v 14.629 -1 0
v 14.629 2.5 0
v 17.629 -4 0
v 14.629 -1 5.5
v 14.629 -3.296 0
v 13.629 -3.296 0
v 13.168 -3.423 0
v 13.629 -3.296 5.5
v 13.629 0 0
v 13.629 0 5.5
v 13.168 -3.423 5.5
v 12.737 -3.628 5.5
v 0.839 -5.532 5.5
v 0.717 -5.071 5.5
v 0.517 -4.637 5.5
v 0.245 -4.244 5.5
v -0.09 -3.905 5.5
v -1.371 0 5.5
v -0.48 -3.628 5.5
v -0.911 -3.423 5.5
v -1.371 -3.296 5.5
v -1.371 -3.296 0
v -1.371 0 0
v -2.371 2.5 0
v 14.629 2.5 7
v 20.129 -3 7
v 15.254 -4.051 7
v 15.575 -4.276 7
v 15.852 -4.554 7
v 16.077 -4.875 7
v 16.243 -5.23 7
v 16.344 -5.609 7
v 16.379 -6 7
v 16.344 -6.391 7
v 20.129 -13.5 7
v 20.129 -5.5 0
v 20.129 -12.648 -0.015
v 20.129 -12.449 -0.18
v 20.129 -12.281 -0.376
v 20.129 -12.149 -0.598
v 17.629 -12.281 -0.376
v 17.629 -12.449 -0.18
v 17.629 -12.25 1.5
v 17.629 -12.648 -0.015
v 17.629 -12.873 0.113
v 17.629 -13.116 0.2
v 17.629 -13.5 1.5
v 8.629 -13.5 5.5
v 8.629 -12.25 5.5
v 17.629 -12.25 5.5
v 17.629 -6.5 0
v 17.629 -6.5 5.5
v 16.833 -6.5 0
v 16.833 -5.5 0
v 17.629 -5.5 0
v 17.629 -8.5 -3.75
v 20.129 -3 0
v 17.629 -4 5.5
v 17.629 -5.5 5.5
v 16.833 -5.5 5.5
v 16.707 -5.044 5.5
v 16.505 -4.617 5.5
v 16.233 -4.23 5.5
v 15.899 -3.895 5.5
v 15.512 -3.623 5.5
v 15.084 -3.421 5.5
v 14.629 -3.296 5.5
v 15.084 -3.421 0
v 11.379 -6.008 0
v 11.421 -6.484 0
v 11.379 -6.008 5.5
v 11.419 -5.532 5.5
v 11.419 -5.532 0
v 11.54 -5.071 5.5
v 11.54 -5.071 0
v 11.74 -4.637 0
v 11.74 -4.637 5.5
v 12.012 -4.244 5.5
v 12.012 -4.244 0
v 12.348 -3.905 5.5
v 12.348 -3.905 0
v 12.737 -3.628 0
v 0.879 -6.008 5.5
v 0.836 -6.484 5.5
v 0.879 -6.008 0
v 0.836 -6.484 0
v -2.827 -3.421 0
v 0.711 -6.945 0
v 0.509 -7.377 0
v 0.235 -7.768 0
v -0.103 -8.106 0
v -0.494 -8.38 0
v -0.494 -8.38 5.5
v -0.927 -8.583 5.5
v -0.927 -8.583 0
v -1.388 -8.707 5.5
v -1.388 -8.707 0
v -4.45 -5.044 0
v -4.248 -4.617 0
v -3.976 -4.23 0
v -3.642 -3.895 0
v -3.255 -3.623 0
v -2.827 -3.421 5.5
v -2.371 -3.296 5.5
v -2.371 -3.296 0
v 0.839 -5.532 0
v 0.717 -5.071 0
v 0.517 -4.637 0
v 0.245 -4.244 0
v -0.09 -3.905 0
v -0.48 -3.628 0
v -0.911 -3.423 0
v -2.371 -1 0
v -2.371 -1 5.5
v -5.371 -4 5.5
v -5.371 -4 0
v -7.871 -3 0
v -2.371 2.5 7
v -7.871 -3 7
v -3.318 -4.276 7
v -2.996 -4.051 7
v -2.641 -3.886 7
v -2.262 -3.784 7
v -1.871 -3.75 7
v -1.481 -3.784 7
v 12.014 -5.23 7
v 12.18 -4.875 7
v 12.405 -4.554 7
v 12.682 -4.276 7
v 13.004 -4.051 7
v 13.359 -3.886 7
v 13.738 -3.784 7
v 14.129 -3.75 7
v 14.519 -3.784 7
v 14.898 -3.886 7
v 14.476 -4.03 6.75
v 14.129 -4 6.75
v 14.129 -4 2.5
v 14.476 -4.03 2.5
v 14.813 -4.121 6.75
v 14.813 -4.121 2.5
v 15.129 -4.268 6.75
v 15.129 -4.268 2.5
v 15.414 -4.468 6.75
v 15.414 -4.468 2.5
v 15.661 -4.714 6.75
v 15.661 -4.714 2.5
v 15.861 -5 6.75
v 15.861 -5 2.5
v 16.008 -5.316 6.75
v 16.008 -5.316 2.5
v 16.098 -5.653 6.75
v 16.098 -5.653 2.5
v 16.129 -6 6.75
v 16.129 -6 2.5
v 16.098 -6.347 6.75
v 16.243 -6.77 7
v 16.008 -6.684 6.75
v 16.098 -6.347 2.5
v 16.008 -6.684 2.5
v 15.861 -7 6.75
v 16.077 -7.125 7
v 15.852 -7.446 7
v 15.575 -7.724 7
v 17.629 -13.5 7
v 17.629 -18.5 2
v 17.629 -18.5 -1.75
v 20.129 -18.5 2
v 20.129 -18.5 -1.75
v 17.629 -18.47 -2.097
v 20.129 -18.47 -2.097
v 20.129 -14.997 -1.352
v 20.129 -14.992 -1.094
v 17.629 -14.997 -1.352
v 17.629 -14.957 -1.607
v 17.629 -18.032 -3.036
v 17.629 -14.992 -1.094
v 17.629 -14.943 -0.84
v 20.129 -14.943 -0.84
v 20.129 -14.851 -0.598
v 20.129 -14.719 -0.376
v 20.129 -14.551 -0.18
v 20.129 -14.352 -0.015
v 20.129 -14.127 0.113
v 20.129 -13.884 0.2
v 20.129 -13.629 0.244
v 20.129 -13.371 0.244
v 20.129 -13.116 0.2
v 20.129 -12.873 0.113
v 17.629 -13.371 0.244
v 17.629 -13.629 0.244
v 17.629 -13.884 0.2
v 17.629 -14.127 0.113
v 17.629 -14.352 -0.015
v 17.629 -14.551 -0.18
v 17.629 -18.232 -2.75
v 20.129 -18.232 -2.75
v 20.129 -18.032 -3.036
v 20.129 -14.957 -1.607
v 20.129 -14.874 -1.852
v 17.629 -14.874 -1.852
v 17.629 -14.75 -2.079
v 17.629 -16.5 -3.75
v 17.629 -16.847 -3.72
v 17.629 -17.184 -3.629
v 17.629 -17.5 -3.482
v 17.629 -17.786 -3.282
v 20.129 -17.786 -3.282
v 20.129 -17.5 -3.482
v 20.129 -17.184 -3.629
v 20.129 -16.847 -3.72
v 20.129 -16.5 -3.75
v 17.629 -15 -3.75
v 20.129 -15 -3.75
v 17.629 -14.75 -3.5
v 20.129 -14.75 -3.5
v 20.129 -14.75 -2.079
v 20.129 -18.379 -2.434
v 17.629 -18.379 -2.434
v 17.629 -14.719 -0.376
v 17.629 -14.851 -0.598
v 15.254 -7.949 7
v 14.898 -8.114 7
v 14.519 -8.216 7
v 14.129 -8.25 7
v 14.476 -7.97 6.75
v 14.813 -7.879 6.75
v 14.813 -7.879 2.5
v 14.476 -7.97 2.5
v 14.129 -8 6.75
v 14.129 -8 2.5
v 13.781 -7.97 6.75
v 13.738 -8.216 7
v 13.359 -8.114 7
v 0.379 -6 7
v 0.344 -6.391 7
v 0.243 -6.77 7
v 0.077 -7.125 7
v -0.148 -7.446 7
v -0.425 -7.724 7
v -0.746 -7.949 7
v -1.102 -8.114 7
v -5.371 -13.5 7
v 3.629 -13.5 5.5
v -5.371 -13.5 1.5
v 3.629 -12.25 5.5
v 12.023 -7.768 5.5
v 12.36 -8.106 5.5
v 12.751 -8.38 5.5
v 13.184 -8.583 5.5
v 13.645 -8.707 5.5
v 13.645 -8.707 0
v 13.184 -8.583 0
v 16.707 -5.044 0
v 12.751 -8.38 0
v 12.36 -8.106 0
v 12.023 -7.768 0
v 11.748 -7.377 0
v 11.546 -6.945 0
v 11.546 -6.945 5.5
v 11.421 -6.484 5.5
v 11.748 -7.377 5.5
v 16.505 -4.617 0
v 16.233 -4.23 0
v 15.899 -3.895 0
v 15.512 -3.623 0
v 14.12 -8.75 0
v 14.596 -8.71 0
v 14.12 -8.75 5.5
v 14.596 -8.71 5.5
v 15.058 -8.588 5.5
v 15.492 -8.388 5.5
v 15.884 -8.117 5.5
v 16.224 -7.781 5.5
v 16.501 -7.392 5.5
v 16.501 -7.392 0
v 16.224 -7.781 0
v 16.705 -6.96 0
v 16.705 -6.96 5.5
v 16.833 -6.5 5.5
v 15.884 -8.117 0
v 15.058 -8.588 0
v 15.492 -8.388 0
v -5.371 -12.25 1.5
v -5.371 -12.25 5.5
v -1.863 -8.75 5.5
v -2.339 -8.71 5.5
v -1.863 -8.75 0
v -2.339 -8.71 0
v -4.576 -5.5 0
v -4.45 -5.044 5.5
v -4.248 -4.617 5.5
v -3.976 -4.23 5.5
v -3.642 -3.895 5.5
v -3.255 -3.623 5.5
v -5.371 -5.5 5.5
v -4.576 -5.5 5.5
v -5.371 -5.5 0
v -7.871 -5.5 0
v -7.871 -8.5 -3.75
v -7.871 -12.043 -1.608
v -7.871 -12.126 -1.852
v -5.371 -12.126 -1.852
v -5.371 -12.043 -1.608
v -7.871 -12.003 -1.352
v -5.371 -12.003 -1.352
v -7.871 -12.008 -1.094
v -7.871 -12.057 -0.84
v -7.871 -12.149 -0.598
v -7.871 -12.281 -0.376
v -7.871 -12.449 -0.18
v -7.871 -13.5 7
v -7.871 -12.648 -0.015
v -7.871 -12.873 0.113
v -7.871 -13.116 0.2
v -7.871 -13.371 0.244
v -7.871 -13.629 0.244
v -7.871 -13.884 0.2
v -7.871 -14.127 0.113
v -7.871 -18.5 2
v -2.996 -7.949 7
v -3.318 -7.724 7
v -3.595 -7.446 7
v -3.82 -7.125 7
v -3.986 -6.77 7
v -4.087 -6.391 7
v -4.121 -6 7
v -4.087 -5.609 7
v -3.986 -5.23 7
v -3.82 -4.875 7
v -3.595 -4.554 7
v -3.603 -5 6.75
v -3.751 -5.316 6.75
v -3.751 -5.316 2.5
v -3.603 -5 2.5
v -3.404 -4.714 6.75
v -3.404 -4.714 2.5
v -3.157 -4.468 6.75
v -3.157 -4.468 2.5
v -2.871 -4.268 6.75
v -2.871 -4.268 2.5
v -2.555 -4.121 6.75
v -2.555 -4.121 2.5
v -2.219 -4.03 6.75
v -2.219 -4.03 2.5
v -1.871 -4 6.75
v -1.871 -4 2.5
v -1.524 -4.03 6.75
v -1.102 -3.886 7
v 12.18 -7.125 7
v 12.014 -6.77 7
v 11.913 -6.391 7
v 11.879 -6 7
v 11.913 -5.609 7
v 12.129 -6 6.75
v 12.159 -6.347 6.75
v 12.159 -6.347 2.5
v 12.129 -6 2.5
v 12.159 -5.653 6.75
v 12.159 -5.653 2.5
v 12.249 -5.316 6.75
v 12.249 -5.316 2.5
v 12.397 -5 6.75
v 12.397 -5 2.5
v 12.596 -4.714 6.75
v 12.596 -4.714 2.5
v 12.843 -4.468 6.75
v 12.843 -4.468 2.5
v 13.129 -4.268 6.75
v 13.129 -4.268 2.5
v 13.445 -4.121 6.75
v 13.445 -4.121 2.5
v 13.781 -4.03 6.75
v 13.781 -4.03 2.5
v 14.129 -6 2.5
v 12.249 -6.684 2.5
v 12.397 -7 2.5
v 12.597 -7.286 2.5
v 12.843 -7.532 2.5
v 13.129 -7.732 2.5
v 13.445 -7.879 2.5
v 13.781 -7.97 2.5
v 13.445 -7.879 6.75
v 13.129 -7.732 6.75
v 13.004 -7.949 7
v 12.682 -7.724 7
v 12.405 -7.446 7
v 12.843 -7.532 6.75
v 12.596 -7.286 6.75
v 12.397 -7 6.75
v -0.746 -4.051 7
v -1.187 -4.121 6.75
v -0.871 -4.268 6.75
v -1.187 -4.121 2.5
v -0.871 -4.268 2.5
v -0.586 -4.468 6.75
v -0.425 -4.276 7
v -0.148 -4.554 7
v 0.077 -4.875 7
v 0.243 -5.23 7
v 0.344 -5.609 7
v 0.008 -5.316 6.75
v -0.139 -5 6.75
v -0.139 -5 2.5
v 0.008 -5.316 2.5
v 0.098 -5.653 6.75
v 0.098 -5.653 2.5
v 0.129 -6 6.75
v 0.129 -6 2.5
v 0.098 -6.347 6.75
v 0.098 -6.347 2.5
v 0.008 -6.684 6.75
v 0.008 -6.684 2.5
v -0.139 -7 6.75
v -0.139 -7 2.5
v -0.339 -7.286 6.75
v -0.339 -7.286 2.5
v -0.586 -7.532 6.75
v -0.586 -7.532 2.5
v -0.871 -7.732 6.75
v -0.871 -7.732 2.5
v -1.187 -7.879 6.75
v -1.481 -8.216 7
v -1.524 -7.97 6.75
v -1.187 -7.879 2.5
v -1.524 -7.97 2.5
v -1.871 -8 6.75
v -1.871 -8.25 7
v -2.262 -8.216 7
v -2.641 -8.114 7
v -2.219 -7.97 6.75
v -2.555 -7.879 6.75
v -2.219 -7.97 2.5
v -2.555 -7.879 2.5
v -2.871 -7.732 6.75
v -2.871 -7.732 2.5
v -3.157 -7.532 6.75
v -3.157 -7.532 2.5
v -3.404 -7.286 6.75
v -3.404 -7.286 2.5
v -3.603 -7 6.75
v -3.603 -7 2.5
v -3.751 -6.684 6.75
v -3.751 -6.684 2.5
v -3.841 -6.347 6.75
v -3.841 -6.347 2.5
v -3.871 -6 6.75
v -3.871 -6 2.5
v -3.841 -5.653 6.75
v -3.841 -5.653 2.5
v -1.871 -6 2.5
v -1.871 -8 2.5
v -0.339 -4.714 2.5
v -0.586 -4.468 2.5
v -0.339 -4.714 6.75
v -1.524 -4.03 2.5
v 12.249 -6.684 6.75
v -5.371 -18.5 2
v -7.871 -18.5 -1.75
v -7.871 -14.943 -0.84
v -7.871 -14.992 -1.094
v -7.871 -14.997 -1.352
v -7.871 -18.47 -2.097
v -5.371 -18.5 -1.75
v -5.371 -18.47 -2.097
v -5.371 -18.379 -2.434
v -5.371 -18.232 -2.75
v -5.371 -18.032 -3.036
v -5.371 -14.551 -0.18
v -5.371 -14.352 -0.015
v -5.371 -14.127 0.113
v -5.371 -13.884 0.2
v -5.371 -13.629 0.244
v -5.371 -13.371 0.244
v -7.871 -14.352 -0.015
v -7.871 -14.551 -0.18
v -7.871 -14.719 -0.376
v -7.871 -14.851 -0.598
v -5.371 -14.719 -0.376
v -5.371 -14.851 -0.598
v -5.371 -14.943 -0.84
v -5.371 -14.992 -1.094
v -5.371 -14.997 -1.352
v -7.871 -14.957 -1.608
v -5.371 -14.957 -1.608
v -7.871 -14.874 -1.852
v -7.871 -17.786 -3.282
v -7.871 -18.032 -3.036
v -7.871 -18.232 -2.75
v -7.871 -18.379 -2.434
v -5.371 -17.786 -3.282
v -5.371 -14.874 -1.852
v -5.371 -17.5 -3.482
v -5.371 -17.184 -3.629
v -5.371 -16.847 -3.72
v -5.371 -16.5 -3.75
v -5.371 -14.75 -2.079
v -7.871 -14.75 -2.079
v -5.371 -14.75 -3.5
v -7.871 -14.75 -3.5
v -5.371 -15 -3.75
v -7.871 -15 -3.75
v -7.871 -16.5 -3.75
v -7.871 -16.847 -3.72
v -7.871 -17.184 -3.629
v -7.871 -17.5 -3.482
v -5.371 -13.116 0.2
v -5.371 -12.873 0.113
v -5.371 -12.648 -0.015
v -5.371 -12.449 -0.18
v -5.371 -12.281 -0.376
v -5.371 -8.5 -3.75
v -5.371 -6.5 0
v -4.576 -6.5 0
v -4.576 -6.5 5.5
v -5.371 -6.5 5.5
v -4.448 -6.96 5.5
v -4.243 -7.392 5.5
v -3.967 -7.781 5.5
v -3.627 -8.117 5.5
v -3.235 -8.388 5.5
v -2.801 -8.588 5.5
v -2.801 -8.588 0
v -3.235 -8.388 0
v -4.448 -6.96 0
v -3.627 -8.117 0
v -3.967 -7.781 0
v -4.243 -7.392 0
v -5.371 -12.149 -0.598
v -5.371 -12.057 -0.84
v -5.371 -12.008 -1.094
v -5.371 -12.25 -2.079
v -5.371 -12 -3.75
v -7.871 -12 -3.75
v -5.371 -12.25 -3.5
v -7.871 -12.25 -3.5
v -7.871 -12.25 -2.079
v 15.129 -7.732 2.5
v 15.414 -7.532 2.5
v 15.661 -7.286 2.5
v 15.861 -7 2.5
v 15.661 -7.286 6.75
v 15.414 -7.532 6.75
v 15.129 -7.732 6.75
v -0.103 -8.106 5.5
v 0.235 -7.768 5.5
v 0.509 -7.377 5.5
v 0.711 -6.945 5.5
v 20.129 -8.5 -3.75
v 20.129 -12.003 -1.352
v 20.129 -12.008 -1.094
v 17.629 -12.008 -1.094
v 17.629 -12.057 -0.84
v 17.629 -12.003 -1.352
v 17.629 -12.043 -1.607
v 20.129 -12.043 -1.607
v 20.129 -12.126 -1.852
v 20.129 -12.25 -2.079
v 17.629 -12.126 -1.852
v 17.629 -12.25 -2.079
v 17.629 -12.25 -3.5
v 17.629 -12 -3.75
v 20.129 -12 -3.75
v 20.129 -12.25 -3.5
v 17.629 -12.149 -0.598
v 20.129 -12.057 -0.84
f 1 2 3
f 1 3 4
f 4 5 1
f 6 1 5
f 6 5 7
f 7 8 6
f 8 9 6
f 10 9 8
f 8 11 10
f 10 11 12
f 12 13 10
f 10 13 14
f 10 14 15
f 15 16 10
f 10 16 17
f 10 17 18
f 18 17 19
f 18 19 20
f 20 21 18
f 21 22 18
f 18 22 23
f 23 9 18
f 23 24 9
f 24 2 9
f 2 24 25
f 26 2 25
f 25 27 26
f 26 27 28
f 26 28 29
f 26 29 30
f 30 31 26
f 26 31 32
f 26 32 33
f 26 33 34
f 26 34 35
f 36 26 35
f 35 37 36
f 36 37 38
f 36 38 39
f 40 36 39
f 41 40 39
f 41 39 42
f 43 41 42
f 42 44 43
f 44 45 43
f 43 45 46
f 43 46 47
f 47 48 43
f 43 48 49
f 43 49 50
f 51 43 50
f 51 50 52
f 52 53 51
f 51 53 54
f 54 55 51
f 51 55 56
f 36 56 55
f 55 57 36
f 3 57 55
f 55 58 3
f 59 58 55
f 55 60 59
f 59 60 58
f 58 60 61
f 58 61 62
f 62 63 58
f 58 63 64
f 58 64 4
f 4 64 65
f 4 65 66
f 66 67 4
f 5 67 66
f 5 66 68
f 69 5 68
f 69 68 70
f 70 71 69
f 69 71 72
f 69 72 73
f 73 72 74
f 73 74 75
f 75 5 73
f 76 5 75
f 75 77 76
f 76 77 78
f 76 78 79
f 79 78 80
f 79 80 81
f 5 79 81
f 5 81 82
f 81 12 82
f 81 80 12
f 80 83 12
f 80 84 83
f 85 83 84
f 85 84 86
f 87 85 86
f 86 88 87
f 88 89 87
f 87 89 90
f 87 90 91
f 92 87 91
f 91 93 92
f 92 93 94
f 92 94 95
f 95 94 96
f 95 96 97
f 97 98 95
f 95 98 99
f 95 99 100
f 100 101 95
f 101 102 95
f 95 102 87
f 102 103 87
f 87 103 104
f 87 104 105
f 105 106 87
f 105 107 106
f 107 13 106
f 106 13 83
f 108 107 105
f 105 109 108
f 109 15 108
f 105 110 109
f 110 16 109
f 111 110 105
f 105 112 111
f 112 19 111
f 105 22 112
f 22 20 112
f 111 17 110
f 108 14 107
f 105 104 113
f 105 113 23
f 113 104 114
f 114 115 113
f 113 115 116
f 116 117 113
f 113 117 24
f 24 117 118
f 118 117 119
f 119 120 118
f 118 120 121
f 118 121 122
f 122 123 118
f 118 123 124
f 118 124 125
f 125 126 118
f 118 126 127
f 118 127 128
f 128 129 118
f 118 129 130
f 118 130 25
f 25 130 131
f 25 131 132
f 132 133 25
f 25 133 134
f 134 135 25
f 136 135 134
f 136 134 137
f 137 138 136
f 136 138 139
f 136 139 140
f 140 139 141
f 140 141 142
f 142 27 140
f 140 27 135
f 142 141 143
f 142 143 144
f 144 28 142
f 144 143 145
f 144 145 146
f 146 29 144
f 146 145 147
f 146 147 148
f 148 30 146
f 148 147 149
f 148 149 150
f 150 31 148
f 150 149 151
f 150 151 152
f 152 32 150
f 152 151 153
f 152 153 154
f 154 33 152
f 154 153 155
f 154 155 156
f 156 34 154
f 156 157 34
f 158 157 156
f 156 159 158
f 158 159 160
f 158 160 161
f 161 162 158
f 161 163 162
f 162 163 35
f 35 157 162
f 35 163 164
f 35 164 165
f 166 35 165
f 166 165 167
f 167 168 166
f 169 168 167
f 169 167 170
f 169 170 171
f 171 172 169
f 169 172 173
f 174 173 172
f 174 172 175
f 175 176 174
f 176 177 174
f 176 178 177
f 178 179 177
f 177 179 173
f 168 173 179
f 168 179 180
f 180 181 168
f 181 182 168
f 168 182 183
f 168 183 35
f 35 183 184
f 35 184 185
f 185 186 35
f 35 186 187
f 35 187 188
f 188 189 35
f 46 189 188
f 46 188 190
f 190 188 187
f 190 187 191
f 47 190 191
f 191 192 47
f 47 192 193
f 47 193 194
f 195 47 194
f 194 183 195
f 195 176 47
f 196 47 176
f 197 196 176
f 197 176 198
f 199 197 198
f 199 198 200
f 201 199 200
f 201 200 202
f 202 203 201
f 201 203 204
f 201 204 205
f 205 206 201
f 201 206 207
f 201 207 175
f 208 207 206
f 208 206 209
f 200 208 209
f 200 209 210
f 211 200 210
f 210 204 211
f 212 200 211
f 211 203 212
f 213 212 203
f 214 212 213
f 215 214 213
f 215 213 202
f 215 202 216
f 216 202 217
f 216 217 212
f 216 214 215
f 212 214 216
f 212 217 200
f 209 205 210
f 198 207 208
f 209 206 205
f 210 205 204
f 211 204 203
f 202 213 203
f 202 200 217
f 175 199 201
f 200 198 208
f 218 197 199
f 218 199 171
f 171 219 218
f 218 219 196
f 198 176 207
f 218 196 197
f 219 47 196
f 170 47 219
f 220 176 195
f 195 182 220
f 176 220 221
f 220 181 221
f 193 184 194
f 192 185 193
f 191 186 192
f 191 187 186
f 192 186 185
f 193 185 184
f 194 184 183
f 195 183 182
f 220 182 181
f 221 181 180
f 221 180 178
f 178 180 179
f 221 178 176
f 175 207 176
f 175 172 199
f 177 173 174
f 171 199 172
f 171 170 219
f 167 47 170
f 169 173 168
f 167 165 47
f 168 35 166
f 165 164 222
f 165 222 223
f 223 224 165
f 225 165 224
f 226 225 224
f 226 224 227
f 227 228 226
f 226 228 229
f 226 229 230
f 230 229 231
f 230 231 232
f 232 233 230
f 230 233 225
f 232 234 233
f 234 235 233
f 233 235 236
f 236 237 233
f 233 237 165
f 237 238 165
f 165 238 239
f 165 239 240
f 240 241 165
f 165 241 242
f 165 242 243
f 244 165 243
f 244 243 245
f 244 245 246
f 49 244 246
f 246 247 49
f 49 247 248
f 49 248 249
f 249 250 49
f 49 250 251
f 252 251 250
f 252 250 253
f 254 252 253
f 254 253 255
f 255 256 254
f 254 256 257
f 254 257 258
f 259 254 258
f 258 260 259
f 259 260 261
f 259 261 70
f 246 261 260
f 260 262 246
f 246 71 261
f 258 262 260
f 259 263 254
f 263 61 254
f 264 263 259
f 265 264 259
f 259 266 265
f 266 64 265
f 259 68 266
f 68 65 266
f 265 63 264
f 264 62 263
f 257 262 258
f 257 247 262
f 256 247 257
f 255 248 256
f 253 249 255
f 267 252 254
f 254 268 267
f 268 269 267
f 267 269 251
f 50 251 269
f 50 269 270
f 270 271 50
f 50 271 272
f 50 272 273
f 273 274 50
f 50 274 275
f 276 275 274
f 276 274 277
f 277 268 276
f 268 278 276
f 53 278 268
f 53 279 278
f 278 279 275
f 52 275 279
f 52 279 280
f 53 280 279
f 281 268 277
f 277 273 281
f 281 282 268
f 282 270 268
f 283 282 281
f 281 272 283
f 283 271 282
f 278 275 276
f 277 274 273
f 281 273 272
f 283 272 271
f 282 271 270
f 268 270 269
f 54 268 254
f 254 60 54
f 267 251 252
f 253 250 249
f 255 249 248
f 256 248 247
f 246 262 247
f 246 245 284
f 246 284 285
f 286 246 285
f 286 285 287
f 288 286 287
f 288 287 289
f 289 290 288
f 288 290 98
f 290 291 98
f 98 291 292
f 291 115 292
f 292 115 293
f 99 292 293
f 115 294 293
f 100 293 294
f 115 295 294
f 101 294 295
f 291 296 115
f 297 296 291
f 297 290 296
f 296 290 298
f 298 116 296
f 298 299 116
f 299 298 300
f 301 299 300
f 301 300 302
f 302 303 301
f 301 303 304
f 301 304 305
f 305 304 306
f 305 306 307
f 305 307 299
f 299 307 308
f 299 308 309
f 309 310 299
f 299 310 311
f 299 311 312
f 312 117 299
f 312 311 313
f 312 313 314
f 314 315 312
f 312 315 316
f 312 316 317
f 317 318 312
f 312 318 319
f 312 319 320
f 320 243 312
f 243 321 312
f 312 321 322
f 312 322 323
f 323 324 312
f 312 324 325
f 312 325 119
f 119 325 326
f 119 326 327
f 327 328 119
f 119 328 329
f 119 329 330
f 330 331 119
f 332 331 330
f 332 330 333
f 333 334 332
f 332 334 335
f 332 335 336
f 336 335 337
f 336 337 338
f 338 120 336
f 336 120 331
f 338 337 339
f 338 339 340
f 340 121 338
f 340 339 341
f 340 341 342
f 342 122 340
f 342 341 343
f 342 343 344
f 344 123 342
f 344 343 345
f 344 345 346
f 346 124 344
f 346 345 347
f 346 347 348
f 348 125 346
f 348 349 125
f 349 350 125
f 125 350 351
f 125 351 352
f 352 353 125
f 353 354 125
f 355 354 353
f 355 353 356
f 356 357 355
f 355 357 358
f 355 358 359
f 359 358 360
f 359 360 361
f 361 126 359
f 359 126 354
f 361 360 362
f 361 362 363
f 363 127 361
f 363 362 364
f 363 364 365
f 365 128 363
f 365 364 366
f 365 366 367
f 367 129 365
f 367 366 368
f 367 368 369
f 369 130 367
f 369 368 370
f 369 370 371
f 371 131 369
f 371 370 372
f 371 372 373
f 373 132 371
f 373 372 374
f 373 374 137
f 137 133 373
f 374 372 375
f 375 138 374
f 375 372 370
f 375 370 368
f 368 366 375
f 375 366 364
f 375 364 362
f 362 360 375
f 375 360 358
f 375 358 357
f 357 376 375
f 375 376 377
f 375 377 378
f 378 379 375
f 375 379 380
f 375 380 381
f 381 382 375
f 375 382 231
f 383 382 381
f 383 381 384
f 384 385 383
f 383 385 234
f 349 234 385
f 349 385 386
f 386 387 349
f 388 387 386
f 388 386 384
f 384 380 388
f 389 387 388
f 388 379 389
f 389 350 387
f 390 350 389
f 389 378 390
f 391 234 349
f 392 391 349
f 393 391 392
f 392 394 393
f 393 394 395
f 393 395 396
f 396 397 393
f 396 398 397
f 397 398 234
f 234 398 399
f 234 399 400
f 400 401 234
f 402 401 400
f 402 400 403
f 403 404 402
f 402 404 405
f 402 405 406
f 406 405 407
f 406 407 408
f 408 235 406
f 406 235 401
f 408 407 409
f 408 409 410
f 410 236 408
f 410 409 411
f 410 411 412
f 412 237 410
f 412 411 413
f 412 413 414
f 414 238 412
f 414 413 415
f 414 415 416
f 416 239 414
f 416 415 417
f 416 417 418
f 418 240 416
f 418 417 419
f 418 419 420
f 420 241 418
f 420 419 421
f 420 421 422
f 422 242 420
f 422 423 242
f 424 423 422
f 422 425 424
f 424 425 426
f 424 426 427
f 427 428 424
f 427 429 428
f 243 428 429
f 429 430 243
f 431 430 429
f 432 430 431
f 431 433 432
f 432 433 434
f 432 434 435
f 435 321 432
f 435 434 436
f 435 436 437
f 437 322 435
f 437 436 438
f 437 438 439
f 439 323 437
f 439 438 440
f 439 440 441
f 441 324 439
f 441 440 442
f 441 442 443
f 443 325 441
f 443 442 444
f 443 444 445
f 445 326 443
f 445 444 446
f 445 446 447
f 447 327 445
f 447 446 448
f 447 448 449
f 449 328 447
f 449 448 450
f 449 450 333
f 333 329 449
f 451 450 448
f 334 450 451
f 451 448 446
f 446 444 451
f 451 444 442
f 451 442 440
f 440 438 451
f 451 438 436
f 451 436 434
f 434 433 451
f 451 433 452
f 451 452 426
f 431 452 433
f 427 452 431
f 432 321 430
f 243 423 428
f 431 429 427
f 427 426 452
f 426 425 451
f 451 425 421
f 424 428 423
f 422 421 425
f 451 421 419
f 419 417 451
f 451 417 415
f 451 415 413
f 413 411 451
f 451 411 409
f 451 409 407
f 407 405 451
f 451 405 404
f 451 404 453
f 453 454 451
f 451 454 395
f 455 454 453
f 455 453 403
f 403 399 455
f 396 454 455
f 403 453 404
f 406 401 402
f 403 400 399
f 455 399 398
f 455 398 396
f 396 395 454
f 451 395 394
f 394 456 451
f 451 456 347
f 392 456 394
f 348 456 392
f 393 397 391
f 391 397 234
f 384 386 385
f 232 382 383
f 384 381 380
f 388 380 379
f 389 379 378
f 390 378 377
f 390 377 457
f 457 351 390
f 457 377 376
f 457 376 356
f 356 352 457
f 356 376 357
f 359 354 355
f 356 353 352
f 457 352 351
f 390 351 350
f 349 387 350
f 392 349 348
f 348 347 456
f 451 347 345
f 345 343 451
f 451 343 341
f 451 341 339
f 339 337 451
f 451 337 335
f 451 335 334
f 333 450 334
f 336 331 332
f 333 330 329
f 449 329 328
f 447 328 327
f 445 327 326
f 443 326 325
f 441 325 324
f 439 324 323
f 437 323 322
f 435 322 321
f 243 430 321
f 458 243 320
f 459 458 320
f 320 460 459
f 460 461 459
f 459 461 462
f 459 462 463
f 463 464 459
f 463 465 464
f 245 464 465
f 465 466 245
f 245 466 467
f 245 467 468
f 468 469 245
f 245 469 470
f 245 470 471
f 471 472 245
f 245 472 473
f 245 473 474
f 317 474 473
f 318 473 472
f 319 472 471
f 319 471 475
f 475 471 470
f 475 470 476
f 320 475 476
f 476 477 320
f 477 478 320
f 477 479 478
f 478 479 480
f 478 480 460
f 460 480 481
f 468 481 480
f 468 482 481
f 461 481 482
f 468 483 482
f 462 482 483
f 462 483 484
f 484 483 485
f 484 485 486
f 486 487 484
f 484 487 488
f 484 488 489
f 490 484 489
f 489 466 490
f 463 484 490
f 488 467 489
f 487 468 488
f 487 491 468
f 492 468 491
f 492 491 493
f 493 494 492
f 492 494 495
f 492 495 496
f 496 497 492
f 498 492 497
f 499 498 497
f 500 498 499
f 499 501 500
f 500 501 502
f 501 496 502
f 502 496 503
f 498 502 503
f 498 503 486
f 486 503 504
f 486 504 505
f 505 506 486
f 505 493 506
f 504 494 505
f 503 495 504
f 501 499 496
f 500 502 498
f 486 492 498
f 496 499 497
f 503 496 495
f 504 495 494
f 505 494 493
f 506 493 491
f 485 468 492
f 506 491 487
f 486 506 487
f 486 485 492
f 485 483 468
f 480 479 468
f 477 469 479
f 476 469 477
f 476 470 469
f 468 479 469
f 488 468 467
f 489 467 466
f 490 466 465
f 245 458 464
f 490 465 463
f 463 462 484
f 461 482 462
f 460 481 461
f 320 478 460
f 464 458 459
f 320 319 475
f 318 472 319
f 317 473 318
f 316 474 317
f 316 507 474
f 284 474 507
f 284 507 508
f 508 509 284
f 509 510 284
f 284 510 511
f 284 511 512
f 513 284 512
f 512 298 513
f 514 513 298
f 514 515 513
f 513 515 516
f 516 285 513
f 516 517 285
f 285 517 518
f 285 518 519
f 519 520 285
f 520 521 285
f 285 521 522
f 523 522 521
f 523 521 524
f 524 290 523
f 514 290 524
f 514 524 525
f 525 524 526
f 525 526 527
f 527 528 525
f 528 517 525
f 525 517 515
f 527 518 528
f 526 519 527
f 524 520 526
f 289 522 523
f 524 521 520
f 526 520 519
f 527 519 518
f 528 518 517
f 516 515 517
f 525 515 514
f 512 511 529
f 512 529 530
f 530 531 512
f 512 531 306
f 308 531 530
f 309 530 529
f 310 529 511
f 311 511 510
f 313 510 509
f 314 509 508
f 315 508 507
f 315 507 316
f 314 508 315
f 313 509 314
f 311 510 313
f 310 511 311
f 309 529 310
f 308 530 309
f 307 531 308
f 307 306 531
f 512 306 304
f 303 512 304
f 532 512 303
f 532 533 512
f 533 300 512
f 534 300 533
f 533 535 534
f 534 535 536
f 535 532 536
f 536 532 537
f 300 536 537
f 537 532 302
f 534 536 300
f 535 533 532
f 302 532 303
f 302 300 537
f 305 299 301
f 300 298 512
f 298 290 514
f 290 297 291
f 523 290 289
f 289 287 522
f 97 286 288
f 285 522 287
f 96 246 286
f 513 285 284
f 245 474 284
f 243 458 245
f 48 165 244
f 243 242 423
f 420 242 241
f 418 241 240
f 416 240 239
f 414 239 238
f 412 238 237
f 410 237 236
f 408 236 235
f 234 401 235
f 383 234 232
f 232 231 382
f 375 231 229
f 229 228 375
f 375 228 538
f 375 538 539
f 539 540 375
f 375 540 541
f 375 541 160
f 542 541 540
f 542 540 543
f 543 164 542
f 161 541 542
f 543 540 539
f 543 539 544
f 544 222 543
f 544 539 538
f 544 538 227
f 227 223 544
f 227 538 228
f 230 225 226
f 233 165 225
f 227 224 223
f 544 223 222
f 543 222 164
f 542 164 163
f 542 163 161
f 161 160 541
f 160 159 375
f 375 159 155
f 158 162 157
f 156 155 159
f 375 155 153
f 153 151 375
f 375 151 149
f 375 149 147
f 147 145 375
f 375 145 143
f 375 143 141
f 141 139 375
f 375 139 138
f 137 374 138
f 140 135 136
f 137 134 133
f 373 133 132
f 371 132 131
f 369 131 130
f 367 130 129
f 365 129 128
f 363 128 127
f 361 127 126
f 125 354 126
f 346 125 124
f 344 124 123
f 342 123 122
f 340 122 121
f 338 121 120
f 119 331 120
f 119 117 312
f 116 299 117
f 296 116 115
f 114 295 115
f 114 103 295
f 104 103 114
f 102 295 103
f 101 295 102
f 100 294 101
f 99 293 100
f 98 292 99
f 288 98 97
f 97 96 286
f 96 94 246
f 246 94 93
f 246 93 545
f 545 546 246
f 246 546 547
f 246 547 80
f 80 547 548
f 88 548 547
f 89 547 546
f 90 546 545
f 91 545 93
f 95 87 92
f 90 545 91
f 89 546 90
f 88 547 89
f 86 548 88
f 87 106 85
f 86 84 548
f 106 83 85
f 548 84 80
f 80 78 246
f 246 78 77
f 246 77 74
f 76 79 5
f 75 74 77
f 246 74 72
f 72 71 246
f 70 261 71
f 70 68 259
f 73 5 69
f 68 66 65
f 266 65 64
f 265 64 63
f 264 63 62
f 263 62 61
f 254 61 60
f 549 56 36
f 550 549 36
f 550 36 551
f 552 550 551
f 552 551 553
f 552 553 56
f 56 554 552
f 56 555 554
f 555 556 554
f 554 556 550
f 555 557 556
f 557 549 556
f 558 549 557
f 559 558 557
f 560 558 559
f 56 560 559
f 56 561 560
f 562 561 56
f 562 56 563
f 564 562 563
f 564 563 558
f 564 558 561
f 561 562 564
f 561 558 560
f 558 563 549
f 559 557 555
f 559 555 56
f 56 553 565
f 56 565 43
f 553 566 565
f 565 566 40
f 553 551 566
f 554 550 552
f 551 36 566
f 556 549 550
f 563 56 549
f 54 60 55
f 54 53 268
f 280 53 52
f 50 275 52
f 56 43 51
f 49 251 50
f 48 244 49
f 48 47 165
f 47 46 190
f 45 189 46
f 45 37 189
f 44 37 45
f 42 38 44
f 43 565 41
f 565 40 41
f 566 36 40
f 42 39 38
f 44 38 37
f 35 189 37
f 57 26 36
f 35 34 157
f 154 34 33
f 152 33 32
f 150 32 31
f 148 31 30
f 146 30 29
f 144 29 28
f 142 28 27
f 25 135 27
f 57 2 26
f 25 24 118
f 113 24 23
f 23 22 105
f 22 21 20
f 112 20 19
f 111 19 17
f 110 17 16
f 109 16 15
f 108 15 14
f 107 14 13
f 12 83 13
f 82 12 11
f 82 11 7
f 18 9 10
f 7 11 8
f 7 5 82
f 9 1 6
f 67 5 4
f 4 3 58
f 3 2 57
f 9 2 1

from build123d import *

# Parameters (mm, degrees)
BOSS_EXTRU_1_DEPTH      = 7
CHANFREIN2_SIZE         = 4
CHANFREIN3_SIZE         = 5.5
CHANFREIN4_SIZE         = 5
BOSS_EXTRU_2_DEPTH      = 1.5
ESQUISSE5_W             = 9
ESQUISSE5_H             = 1.25
BOSS_EXTRU_3_DEPTH      = 4
ENL_V_MAT_EXTRU_1_DEPTH = 1.25
ESQUISSE7_R             = 2.75
BOSS_EXTRU_4_DEPTH      = 5.5
ENL_V_START             = -2.5
ESQUISSE9_R             = 2
ENL_V_MAT_EXTRU_2_DEPTH = 4.5
ESQUISSE10_W            = 1.052895571
ESQUISSE10_H            = 1
ESQUISSE10_W_2          = 1
ESQUISSE10_H_2          = 3.75
ESQUISSE10_H_3          = 3.95048694
ESQUISSE10_W_3          = 1.193094599
BOSS_EXTRU_5_DEPTH      = 5.5
ESQUISSE11_W            = 2.5
ESQUISSE11_H            = 10
BOSS_EXTRU_6_DEPTH      = 3.75
ENL_V_MAT_EXTRU_3_DEPTH = 28
ESQUISSE13_W            = 2.5
ESQUISSE13_H            = 3.75
BOSS_EXTRU_7_DEPTH      = 3
ENL_V_MAT_EXTRU_4_DEPTH = 28
CONG_1_R                = 2
CHANFREIN7_SIZE         = 0.25
CHANFREIN8_SIZE         = 0.25


with BuildPart() as part:
    # Esquisse3 → Boss.-Extru.1 (new body)
    with BuildSketch(Plane.XY):
        Polygon((-5.371411117, 0), (17.628588883, 0), (17.628588883, -18.5), (20.128588883, -18.5), (20.128588883, 2.5), (-7.871411117, 2.5), (-7.871411117, -18.5), (-5.371411117, -18.5), align=None)
    extrude(amount=BOSS_EXTRU_1_DEPTH)

    # Chanfrein2
    chanfrein2_edges = [part.edges().sort_by_distance(p)[0] for p in [
        (17.628588883, 0, 3.5),
        (-5.371411117, 0, 3.5),
    ]]
    chamfer(chanfrein2_edges, length=CHANFREIN2_SIZE)

    # Chanfrein3
    chanfrein3_edges = [part.edges().sort_by_distance(p)[0] for p in [
        (-7.871411117, 2.5, 3.5),
        (20.128588883, 2.5, 3.5),
    ]]
    chamfer(chanfrein3_edges, length=CHANFREIN3_SIZE)

    # Chanfrein4
    chanfrein4_edges = [part.edges().sort_by_distance(p)[0] for p in [
        (18.878588883, -18.5, 7),
        (-6.621411117, -18.5, 7),
    ]]
    chamfer(chanfrein4_edges, length=CHANFREIN4_SIZE)

    # Esquisse4 → Boss.-Extru.2 (add)
    with BuildSketch(Plane.XY.offset(7)):
        Polygon((-5.371411117, -13.5), (17.628588883, -13.5), (17.628588883, -4), (13.628588883, 0), (-1.371411117, 0), (-5.371411117, -4), align=None)
    extrude(amount=-BOSS_EXTRU_2_DEPTH)

    # Esquisse5 → Boss.-Extru.3 (add)
    with BuildSketch(Plane(origin=(0, 0, 5.5), x_dir=(-1, 0, 0), z_dir=(0, 0, -1))):
        with Locations((-13.128588883, -12.875)):
            Rectangle(ESQUISSE5_W, ESQUISSE5_H)
        with Locations((0.871411117, -12.875)):
            Rectangle(ESQUISSE5_W, ESQUISSE5_H)
    extrude(amount=BOSS_EXTRU_3_DEPTH)

    # Esquisse6 → Enlèv. mat.-Extru.1 (cut)
    with BuildSketch(Plane.XZ.offset(13.5)):
        Polygon((17.628588883, 1.5), (8.628588883, 5.5), (8.628588883, 1.5), align=None)
        Polygon((-5.371411117, 1.5), (3.628588883, 5.5), (3.628588883, 1.5), align=None)
    extrude(amount=-ENL_V_MAT_EXTRU_1_DEPTH, mode=Mode.SUBTRACT)

    # Esquisse7 → Boss.-Extru.4 (add)
    with BuildSketch(Plane(origin=(0, 0, 5.5), x_dir=(-1, 0, 0), z_dir=(0, 0, -1))):
        with Locations((-14.128588883, -6)):
            Circle(ESQUISSE7_R)
        with Locations((1.871411117, -6)):
            Circle(ESQUISSE7_R)
    extrude(amount=BOSS_EXTRU_4_DEPTH)

    # Esquisse9 → Enlèv. mat.-Extru.2 (cut)
    with BuildSketch(Plane(origin=(0, 0, 0), x_dir=(-1, 0, 0), z_dir=(0, 0, -1)).offset(ENL_V_START)):
        with Locations((-14.128588883, -6)):
            Circle(ESQUISSE9_R)
        with Locations((1.871411117, -6)):
            Circle(ESQUISSE9_R)
    extrude(amount=-ENL_V_MAT_EXTRU_2_DEPTH, mode=Mode.SUBTRACT)

    # Esquisse10 → Boss.-Extru.5 (add)
    with BuildSketch(Plane(origin=(0, 0, 0), x_dir=(-1, 0, 0), z_dir=(0, 0, -1))):
        with Locations((-17.253588884, -6)):
            Rectangle(ESQUISSE10_W, ESQUISSE10_H)
        with Locations((-14.128588883, -1.875)):
            Rectangle(ESQUISSE10_W_2, ESQUISSE10_H_2)
        with Locations((1.871411117, -1.875)):
            Rectangle(ESQUISSE10_W_2, ESQUISSE10_H_3)
        with Locations((4.996411117, -6)):
            Rectangle(ESQUISSE10_W_3, ESQUISSE10_H)
    extrude(amount=-BOSS_EXTRU_5_DEPTH)

    # Esquisse11 → Boss.-Extru.6 (add)
    with BuildSketch(Plane(origin=(0, 0, 0), x_dir=(-1, 0, 0), z_dir=(0, 0, -1))):
        with Locations((6.621411117, -13.5)):
            Rectangle(ESQUISSE11_W, ESQUISSE11_H)
        with Locations((-18.878588883, -13.5)):
            Rectangle(ESQUISSE11_W, ESQUISSE11_H)
    extrude(amount=BOSS_EXTRU_6_DEPTH)

    # Esquisse12 → Enlèv. mat.-Extru.3 (cut)
    with BuildSketch(Plane(origin=(-5.371411117, 0, 0), x_dir=(0, 0, -1), z_dir=(1, 0, 0)).offset(ENL_V_START)):
        with BuildLine():
            Line((3.75, -14.75), (3.75, -12.25))
            Line((3.75, -12.25), (2.079156198, -12.25))
            ThreePointArc((2.079156198, -12.25), (-0.25, -13.5), (2.079156198, -14.75))
            Line((2.079156198, -14.75), (3.75, -14.75))
        make_face()
    extrude(amount=ENL_V_MAT_EXTRU_3_DEPTH, mode=Mode.SUBTRACT)

    # Esquisse13 → Boss.-Extru.7 (add)
    with BuildSketch(Plane(origin=(0, -8.5, 0), x_dir=(1, 0, 0), z_dir=(0, 1, 0))):
        with Locations((18.878588883, 1.875)):
            Rectangle(ESQUISSE13_W, ESQUISSE13_H)
        with Locations((-6.621411117, 1.875)):
            Rectangle(ESQUISSE13_W, ESQUISSE13_H)
    extrude(amount=BOSS_EXTRU_7_DEPTH)

    # Esquisse14 → Enlèv. mat.-Extru.4 (cut)
    with BuildSketch(Plane.ZY.offset(7.871411117)):
        Polygon((-3.75, -5.5), (-3.75, -8.5), (0, -5.5), align=None)
    extrude(amount=-ENL_V_MAT_EXTRU_4_DEPTH, mode=Mode.SUBTRACT)

    # Congé1
    cong_1_edges = [part.edges().sort_by_distance(p)[0] for p in [
        (-6.621411117, -18.5, -3.75),
        (18.878588883, -18.5, -3.75),
    ]]
    fillet(cong_1_edges, radius=CONG_1_R)

    # Chanfrein7
    chanfrein7_edges = [part.edges().sort_by_distance(p)[0] for p in [
        (18.878588883, -14.75, -3.75),
        (18.878588883, -12.25, -3.75),
        (-6.621411117, -12.25, -3.75),
        (-6.621411117, -14.75, -3.75),
    ]]
    chamfer(chanfrein7_edges, length=CHANFREIN7_SIZE)

    # Chanfrein8
    chanfrein8_edges = [part.edges().sort_by_distance(p)[0] for p in [
        (16.128588883, -6, 7),
        (0.128588883, -6, 7),
    ]]
    chamfer(chanfrein8_edges, length=CHANFREIN8_SIZE)


solid = part.part
